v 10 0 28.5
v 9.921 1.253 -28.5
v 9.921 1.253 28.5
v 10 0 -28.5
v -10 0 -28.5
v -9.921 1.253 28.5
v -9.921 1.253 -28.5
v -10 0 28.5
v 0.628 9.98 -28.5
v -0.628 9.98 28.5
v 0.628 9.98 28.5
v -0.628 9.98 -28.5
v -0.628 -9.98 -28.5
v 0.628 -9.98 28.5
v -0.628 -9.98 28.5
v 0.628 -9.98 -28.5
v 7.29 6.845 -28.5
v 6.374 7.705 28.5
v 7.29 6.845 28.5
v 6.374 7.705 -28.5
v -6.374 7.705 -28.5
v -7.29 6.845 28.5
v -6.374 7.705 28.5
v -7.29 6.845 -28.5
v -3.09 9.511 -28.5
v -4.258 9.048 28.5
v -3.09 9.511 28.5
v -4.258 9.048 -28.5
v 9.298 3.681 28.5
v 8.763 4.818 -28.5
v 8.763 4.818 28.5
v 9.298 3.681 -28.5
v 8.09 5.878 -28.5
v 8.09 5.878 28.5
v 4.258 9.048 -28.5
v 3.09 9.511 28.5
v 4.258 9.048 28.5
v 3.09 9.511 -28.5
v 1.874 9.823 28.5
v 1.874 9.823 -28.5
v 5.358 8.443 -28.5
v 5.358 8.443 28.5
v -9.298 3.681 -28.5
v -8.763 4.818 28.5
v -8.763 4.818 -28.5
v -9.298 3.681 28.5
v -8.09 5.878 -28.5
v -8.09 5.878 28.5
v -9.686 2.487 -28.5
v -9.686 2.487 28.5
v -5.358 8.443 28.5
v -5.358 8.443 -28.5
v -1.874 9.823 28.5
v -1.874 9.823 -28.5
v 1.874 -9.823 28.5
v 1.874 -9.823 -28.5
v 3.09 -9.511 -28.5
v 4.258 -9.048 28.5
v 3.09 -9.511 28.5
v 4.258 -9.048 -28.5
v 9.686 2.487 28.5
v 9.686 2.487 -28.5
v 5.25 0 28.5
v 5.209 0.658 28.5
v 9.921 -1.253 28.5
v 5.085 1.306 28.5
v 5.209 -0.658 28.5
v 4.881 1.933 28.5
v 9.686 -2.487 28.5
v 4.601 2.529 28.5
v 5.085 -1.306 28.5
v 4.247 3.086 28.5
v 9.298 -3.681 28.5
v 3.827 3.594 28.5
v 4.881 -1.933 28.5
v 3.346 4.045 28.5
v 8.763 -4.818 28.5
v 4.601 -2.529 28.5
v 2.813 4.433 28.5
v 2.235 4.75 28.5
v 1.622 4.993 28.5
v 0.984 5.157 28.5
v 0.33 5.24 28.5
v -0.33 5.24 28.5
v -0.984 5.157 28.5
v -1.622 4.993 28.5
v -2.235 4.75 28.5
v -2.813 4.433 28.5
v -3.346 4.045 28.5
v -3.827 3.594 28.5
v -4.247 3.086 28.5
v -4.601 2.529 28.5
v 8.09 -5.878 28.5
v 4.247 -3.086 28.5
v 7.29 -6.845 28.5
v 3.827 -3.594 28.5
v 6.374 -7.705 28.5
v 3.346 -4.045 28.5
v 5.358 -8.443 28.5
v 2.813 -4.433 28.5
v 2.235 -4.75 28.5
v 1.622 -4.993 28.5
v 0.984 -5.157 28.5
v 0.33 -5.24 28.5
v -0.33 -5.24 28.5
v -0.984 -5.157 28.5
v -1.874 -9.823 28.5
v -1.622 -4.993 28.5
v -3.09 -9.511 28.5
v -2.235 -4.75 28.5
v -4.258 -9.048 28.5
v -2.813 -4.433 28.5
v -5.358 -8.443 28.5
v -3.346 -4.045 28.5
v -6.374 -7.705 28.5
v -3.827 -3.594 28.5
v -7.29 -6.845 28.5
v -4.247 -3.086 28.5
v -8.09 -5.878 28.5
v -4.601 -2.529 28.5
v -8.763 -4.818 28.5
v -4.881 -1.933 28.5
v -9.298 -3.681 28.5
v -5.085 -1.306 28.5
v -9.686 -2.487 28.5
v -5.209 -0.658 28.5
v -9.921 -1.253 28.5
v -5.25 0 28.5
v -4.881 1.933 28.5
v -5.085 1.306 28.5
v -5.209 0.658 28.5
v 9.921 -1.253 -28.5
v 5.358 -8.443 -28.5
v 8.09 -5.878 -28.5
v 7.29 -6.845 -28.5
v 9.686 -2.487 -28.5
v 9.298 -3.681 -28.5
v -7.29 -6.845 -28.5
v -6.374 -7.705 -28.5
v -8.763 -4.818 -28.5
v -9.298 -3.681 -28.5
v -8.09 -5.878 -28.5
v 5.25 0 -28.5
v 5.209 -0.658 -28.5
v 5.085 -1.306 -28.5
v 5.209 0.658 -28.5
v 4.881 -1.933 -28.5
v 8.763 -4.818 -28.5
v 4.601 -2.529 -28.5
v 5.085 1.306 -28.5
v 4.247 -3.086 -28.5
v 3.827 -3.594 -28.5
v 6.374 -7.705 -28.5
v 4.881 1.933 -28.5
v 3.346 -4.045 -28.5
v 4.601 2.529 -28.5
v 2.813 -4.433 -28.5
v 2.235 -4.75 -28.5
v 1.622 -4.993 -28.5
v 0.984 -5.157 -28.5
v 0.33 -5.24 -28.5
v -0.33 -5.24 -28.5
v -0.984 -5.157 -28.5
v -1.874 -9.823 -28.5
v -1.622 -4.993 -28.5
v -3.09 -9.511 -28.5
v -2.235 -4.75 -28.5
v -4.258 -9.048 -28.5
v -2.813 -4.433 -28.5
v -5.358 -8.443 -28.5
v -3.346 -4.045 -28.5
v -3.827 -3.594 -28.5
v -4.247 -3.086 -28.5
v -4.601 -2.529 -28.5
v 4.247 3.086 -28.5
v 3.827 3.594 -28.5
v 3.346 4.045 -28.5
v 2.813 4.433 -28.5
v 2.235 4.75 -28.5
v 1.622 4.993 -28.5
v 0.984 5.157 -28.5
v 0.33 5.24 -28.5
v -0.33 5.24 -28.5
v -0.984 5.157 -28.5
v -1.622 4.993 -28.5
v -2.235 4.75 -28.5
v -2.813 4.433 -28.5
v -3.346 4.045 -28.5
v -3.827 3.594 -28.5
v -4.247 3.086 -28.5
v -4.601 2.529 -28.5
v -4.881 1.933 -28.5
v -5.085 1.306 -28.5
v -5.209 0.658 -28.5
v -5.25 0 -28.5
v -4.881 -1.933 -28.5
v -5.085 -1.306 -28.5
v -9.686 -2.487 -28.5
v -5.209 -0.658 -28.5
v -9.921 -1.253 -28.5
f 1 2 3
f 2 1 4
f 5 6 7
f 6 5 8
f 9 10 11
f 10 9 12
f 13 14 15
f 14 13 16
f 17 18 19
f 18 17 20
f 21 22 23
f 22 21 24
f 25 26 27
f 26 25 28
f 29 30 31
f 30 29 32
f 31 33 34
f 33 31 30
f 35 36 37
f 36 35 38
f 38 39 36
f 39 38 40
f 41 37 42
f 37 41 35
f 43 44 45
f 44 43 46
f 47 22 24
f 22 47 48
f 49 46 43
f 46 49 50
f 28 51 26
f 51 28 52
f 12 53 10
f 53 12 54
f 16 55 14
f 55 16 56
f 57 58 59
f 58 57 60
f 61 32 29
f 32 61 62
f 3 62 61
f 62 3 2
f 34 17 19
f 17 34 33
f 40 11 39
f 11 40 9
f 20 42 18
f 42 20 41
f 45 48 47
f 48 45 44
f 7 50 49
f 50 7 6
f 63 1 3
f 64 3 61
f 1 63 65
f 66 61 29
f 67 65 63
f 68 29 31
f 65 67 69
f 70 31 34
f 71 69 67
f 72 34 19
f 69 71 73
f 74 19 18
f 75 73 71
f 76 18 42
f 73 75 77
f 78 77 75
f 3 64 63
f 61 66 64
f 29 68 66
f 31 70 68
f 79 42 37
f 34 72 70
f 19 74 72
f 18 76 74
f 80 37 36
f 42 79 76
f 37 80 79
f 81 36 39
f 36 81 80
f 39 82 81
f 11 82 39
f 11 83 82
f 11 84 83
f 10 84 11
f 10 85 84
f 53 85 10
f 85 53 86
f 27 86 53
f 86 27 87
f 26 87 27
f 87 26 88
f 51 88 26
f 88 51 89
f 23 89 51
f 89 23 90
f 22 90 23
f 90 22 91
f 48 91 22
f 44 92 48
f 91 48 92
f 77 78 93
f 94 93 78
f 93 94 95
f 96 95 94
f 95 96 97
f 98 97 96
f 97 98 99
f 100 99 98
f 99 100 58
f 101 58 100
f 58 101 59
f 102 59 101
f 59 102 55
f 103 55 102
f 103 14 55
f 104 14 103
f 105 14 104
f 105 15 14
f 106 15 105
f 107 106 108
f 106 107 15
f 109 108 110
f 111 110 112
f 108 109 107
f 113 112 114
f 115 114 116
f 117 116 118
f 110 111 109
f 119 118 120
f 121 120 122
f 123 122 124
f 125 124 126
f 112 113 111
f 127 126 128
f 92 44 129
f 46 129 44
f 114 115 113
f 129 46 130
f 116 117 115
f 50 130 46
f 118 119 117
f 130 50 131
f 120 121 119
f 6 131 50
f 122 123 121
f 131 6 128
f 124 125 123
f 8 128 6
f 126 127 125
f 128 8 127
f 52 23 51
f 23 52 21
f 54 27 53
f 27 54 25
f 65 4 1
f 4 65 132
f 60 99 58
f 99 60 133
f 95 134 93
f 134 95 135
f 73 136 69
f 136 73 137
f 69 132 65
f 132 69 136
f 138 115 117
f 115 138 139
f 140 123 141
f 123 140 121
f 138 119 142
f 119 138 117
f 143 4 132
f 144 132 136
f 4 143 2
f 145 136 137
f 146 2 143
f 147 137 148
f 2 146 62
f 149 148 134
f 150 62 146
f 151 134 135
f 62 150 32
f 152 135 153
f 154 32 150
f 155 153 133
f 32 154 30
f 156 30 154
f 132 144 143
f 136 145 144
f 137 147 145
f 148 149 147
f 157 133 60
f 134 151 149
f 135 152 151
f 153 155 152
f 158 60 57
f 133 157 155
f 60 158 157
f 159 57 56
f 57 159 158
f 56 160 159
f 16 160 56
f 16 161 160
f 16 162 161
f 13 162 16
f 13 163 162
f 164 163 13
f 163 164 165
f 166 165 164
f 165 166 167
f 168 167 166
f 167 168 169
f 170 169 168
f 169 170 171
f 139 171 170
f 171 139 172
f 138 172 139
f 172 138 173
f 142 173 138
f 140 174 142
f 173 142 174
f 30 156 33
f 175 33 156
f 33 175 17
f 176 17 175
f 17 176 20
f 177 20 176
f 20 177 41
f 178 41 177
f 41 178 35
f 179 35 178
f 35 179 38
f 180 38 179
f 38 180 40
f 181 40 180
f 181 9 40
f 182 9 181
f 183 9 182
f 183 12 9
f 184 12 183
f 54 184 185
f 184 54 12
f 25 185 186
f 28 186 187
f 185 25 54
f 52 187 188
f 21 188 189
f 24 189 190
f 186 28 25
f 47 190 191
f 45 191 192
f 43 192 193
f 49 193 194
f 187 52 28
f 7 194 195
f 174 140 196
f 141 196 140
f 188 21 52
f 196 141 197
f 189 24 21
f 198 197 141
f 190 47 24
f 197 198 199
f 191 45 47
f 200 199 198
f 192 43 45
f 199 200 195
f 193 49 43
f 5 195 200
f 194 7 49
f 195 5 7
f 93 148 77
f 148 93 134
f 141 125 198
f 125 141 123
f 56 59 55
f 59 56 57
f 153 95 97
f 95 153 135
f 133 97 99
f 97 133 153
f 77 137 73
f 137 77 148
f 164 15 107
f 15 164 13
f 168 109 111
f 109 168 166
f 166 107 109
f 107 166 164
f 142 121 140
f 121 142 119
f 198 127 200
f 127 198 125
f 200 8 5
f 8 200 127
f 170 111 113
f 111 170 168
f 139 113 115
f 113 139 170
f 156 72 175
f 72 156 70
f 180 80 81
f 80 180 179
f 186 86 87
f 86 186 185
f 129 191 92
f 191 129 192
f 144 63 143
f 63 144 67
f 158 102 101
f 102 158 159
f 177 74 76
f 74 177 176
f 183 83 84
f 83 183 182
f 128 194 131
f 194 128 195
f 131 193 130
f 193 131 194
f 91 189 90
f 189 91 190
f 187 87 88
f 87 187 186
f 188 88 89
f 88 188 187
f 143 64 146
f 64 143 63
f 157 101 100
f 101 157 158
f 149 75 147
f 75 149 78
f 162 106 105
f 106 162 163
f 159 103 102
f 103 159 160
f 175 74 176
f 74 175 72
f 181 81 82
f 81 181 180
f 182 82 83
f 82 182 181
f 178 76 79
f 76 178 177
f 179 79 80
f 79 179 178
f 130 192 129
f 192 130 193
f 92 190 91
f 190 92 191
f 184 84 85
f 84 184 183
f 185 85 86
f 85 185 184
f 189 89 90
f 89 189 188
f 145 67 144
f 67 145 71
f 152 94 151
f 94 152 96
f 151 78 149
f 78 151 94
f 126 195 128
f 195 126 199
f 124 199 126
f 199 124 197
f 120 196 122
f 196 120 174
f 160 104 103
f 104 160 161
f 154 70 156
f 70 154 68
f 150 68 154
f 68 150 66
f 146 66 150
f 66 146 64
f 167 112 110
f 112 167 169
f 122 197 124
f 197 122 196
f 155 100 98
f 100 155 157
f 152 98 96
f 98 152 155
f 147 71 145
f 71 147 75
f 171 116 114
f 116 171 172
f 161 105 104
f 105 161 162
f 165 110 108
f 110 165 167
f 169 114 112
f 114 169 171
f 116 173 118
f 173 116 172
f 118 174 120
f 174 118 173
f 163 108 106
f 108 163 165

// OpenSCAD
$fn = 50;


difference() {
	union() {
		translate(v = [0, 0, -28.5000000000]) {
			cylinder(h = 57, r = 10.0000000000);
		}
	}
	union() {
		translate(v = [0, 0, -100.0000000000]) {
			cylinder(h = 200, r = 5.2500000000);
		}
	}
}
